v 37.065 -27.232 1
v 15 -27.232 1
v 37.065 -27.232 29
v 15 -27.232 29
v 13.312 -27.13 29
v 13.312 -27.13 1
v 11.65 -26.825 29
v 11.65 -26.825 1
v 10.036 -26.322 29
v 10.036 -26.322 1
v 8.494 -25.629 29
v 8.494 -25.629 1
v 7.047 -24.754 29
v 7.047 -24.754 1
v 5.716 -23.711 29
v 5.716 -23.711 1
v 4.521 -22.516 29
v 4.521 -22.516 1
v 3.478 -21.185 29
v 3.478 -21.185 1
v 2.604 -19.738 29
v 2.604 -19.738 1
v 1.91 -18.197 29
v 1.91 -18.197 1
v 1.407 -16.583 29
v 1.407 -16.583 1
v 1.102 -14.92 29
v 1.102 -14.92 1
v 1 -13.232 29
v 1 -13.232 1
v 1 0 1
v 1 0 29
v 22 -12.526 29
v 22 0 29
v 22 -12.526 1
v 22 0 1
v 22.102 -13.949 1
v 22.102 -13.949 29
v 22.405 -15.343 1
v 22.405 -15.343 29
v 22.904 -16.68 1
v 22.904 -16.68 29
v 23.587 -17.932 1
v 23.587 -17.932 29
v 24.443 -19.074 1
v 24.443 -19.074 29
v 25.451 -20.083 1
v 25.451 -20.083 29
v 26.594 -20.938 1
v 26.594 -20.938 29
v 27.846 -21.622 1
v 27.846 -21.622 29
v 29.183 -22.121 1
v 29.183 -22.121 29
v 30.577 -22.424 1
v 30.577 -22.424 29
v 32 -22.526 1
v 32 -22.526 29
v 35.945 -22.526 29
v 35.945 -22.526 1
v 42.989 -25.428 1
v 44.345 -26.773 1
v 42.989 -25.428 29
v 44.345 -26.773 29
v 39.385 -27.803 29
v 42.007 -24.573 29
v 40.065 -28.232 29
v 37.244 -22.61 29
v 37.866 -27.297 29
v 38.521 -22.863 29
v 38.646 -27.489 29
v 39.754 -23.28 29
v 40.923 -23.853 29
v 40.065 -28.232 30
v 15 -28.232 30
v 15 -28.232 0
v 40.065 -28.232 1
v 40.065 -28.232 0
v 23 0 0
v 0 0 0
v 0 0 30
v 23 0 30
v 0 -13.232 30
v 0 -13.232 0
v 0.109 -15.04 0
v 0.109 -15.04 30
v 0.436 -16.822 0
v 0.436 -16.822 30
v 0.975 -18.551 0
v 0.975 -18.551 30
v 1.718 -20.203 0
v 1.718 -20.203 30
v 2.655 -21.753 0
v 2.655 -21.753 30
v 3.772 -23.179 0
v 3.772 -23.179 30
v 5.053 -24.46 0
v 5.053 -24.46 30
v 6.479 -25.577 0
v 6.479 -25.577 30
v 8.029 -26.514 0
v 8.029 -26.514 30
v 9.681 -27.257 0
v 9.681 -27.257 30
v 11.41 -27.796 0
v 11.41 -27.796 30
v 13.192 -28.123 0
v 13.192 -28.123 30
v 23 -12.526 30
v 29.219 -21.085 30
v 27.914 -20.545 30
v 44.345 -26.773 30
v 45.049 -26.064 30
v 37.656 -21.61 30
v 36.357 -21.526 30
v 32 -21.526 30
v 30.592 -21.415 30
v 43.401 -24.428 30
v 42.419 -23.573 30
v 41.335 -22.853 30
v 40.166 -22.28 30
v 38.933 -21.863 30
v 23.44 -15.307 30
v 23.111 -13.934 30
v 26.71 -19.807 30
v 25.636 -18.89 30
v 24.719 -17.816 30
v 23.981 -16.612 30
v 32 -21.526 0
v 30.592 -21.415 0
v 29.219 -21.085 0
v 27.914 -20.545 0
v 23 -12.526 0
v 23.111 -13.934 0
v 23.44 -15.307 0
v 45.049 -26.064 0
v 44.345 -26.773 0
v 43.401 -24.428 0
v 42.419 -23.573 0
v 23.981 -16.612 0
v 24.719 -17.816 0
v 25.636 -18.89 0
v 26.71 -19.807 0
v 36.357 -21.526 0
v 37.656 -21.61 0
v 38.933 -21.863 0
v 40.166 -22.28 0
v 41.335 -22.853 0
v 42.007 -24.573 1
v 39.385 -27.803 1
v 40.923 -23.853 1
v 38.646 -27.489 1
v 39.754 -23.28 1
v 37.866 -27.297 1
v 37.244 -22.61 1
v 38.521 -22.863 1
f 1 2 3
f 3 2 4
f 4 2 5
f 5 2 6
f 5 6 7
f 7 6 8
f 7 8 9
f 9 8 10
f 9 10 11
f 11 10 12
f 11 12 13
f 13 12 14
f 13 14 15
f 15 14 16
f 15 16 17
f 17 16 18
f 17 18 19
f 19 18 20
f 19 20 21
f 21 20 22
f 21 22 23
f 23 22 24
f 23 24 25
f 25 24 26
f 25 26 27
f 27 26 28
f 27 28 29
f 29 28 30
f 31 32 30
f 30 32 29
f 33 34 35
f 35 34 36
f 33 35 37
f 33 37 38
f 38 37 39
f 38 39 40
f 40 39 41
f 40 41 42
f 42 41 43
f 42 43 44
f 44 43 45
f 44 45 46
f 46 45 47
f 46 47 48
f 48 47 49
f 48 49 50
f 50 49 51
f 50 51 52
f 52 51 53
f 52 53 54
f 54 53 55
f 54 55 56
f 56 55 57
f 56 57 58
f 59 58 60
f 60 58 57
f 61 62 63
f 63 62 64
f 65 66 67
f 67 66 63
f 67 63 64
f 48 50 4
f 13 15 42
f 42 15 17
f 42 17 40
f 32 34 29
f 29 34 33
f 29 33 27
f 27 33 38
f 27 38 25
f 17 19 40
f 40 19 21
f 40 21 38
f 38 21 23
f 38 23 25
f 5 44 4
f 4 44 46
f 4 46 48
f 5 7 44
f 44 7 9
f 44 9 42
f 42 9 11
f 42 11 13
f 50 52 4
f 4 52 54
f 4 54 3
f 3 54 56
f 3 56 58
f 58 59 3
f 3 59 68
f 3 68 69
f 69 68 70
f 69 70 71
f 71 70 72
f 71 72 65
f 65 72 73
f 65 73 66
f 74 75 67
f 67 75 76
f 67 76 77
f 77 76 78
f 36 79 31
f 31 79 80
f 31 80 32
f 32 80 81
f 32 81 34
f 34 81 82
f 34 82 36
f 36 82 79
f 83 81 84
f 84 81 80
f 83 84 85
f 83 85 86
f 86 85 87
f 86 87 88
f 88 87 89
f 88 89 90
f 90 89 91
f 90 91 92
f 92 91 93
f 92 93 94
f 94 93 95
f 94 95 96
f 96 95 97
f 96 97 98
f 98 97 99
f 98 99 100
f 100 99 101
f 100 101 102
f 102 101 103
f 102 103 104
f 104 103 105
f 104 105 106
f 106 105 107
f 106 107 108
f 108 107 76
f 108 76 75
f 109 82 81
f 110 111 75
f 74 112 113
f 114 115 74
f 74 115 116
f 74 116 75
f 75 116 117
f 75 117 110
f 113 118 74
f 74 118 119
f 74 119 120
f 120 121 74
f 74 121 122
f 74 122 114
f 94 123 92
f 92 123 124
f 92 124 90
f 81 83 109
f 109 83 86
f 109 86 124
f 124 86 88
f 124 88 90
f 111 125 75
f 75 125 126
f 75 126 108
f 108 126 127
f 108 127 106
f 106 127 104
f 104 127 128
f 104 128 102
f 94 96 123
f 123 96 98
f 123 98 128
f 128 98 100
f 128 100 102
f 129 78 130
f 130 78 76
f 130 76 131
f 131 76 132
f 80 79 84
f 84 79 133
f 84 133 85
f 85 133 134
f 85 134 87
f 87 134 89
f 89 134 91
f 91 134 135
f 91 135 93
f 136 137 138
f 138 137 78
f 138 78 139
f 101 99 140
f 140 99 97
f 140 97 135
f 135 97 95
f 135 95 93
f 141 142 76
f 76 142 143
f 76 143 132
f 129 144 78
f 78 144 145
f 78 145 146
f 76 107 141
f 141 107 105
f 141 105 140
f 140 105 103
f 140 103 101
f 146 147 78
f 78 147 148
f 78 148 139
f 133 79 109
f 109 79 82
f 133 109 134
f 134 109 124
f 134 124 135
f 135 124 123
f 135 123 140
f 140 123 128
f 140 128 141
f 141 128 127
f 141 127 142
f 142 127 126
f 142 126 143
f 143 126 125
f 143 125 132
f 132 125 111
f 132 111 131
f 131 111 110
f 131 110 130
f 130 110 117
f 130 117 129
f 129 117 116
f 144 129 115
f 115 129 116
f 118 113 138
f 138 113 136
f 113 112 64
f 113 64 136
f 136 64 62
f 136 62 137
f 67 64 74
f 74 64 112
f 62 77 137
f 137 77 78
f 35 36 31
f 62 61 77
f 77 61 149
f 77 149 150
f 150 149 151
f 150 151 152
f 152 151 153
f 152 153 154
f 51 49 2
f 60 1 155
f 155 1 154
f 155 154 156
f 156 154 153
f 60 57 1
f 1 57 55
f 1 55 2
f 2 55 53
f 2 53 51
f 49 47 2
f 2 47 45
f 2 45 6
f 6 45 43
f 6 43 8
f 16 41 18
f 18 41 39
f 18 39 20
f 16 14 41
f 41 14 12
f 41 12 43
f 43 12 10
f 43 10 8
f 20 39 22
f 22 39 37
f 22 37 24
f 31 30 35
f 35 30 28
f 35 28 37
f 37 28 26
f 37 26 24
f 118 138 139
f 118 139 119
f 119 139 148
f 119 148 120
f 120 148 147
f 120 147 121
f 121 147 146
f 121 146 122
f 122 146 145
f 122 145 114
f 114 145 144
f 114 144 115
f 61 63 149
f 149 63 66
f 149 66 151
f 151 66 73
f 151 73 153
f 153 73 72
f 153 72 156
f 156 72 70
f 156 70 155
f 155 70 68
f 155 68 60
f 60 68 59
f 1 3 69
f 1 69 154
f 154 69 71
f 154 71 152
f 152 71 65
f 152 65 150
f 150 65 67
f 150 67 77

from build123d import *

# Parameters (mm, degrees)
EXTRUDE_THIN1_DEPTH   = 30
EXTRUDE_THIN1_2_DEPTH = 30
BOSS_EXTRUDE1_START   = -1
BOSS_EXTRUDE1_DEPTH   = 1
BOSS_EXTRUDE2_DEPTH   = 1
FILLET1_R             = 10
FILLET2_R             = 5


with BuildPart() as part:
    # Sketch1 → Extrude-Thin1 (new body)
    with BuildSketch(Plane.XY):
        with BuildLine():
            Line((0, 0), (0, -9.941978892))
            Line((0, -9.941978892), (0, -13.23222107))
            ThreePointArc((0, -13.23222107), (4.393398282, -23.838822788), (15, -28.23222107))
            Line((15, -28.23222107), (40.06481759, -28.23222107))
            Line((40.06481759, -28.23222107), (40.06481759, -27.23222107))
            Line((40.06481759, -27.23222107), (15, -27.23222107))
            ThreePointArc((15, -27.23222107), (5.100505063, -23.131716006), (1, -13.23222107))
            Line((1, -13.23222107), (1, -9.941978892))
            Line((1, -9.941978892), (1, 0))
            Line((1, 0), (0, 0))
        make_face()
    extrude(amount=EXTRUDE_THIN1_DEPTH)



with BuildPart() as body_2:
    # Sketch1 → Extrude-Thin1 2 (new body)
    with BuildSketch(Plane.XY):
        with BuildLine():
            Line((22, 0), (22, -9.941978892))
            Line((22, -9.941978892), (22, -12.525749024))
            ThreePointArc((22, -12.525749024), (24.928932188, -19.596816836), (32, -22.525749024))
            Line((32, -22.525749024), (40.06481759, -22.525749024))
            Line((40.06481759, -22.525749024), (44.344767003, -26.773486601))
            Line((44.344767003, -26.773486601), (45.049197787, -26.063713912))
            Line((45.049197787, -26.063713912), (40.476820184, -21.525749024))
            Line((40.476820184, -21.525749024), (32, -21.525749024))
            ThreePointArc((32, -21.525749024), (25.636038969, -18.889710055), (23, -12.525749024))
            Line((23, -12.525749024), (23, -9.941978892))
            Line((23, -9.941978892), (23, 0))
            Line((23, 0), (22, 0))
        make_face()
    extrude(amount=EXTRUDE_THIN1_2_DEPTH)


with BuildPart() as part_1:
    add(part.part)

    add(body_2.part)  # Boss-Extrude1 merges body 2
    # Sketch2 → Boss-Extrude1 (add)
    with BuildSketch(Plane.XY.offset(30).offset(BOSS_EXTRUDE1_START)):
        with BuildLine():
            Line((40.476820184, -21.525749024), (32, -21.525749024))
            ThreePointArc((32, -21.525749024), (25.636038969, -18.889710055), (23, -12.525749024))
            Line((23, -12.525749024), (23, 0))
            Line((23, 0), (22, 0))
            Line((22, 0), (1, 0))
            Line((1, 0), (0, 0))
            Line((0, 0), (0, -13.23222107))
            ThreePointArc((0, -13.23222107), (4.393398282, -23.838822788), (15, -28.23222107))
            Line((15, -28.23222107), (40.06481759, -28.23222107))
            Line((40.06481759, -28.23222107), (44.344767003, -26.773486601))
            Line((44.344767003, -26.773486601), (45.049197787, -26.063713912))
            Line((45.049197787, -26.063713912), (40.476820184, -21.525749024))
        make_face()
    extrude(amount=BOSS_EXTRUDE1_DEPTH)

    # Sketch3 → Boss-Extrude2 (add)
    with BuildSketch(Plane(origin=(0, 0, 0), x_dir=(-1, 0, 0), z_dir=(0, 0, -1))):
        with BuildLine():
            Line((-44.344767003, -26.773486601), (-40.06481759, -28.23222107))
            Line((-40.06481759, -28.23222107), (-15, -28.23222107))
            ThreePointArc((-15, -28.23222107), (-4.393398282, -23.838822788), (0, -13.23222107))
            Line((0, -13.23222107), (0, 0))
            Line((0, 0), (-1, 0))
            Line((-1, 0), (-22, 0))
            Line((-22, 0), (-23, 0))
            Line((-23, 0), (-23, -12.525749024))
            ThreePointArc((-23, -12.525749024), (-25.636038969, -18.889710055), (-32, -21.525749024))
            Line((-32, -21.525749024), (-40.476820184, -21.525749024))
            Line((-40.476820184, -21.525749024), (-45.049197787, -26.063713912))
            Line((-45.049197787, -26.063713912), (-44.344767003, -26.773486601))
        make_face()
    extrude(amount=-BOSS_EXTRUDE2_DEPTH)

    # Fillet1
    fillet1_edges = [part_1.edges().sort_by_distance(p)[0] for p in [
        (40.476820184, -21.525749024, 15),
        (40.06481759, -22.525749024, 15),
    ]]
    fillet(fillet1_edges, radius=FILLET1_R)

    # Fillet2
    # the kernel refuses this fillet: 5 mm, written as the material it takes off along each edge
    with BuildSketch(Plane(origin=(40.06481759, -27.23222107, 1), x_dir=(0, -1, 0), z_dir=(0, 0, 1))) as fillet2_piece_1:
        with BuildLine():
            CenterArc((5, -3), FILLET2_R, 143.130102354, 36.869897646)
            Line((0, -3), (0, 0))
            Line((0, 0), (1, 0))
        make_face()
    extrude(amount=28, mode=Mode.SUBTRACT)


solid = part_1.part
